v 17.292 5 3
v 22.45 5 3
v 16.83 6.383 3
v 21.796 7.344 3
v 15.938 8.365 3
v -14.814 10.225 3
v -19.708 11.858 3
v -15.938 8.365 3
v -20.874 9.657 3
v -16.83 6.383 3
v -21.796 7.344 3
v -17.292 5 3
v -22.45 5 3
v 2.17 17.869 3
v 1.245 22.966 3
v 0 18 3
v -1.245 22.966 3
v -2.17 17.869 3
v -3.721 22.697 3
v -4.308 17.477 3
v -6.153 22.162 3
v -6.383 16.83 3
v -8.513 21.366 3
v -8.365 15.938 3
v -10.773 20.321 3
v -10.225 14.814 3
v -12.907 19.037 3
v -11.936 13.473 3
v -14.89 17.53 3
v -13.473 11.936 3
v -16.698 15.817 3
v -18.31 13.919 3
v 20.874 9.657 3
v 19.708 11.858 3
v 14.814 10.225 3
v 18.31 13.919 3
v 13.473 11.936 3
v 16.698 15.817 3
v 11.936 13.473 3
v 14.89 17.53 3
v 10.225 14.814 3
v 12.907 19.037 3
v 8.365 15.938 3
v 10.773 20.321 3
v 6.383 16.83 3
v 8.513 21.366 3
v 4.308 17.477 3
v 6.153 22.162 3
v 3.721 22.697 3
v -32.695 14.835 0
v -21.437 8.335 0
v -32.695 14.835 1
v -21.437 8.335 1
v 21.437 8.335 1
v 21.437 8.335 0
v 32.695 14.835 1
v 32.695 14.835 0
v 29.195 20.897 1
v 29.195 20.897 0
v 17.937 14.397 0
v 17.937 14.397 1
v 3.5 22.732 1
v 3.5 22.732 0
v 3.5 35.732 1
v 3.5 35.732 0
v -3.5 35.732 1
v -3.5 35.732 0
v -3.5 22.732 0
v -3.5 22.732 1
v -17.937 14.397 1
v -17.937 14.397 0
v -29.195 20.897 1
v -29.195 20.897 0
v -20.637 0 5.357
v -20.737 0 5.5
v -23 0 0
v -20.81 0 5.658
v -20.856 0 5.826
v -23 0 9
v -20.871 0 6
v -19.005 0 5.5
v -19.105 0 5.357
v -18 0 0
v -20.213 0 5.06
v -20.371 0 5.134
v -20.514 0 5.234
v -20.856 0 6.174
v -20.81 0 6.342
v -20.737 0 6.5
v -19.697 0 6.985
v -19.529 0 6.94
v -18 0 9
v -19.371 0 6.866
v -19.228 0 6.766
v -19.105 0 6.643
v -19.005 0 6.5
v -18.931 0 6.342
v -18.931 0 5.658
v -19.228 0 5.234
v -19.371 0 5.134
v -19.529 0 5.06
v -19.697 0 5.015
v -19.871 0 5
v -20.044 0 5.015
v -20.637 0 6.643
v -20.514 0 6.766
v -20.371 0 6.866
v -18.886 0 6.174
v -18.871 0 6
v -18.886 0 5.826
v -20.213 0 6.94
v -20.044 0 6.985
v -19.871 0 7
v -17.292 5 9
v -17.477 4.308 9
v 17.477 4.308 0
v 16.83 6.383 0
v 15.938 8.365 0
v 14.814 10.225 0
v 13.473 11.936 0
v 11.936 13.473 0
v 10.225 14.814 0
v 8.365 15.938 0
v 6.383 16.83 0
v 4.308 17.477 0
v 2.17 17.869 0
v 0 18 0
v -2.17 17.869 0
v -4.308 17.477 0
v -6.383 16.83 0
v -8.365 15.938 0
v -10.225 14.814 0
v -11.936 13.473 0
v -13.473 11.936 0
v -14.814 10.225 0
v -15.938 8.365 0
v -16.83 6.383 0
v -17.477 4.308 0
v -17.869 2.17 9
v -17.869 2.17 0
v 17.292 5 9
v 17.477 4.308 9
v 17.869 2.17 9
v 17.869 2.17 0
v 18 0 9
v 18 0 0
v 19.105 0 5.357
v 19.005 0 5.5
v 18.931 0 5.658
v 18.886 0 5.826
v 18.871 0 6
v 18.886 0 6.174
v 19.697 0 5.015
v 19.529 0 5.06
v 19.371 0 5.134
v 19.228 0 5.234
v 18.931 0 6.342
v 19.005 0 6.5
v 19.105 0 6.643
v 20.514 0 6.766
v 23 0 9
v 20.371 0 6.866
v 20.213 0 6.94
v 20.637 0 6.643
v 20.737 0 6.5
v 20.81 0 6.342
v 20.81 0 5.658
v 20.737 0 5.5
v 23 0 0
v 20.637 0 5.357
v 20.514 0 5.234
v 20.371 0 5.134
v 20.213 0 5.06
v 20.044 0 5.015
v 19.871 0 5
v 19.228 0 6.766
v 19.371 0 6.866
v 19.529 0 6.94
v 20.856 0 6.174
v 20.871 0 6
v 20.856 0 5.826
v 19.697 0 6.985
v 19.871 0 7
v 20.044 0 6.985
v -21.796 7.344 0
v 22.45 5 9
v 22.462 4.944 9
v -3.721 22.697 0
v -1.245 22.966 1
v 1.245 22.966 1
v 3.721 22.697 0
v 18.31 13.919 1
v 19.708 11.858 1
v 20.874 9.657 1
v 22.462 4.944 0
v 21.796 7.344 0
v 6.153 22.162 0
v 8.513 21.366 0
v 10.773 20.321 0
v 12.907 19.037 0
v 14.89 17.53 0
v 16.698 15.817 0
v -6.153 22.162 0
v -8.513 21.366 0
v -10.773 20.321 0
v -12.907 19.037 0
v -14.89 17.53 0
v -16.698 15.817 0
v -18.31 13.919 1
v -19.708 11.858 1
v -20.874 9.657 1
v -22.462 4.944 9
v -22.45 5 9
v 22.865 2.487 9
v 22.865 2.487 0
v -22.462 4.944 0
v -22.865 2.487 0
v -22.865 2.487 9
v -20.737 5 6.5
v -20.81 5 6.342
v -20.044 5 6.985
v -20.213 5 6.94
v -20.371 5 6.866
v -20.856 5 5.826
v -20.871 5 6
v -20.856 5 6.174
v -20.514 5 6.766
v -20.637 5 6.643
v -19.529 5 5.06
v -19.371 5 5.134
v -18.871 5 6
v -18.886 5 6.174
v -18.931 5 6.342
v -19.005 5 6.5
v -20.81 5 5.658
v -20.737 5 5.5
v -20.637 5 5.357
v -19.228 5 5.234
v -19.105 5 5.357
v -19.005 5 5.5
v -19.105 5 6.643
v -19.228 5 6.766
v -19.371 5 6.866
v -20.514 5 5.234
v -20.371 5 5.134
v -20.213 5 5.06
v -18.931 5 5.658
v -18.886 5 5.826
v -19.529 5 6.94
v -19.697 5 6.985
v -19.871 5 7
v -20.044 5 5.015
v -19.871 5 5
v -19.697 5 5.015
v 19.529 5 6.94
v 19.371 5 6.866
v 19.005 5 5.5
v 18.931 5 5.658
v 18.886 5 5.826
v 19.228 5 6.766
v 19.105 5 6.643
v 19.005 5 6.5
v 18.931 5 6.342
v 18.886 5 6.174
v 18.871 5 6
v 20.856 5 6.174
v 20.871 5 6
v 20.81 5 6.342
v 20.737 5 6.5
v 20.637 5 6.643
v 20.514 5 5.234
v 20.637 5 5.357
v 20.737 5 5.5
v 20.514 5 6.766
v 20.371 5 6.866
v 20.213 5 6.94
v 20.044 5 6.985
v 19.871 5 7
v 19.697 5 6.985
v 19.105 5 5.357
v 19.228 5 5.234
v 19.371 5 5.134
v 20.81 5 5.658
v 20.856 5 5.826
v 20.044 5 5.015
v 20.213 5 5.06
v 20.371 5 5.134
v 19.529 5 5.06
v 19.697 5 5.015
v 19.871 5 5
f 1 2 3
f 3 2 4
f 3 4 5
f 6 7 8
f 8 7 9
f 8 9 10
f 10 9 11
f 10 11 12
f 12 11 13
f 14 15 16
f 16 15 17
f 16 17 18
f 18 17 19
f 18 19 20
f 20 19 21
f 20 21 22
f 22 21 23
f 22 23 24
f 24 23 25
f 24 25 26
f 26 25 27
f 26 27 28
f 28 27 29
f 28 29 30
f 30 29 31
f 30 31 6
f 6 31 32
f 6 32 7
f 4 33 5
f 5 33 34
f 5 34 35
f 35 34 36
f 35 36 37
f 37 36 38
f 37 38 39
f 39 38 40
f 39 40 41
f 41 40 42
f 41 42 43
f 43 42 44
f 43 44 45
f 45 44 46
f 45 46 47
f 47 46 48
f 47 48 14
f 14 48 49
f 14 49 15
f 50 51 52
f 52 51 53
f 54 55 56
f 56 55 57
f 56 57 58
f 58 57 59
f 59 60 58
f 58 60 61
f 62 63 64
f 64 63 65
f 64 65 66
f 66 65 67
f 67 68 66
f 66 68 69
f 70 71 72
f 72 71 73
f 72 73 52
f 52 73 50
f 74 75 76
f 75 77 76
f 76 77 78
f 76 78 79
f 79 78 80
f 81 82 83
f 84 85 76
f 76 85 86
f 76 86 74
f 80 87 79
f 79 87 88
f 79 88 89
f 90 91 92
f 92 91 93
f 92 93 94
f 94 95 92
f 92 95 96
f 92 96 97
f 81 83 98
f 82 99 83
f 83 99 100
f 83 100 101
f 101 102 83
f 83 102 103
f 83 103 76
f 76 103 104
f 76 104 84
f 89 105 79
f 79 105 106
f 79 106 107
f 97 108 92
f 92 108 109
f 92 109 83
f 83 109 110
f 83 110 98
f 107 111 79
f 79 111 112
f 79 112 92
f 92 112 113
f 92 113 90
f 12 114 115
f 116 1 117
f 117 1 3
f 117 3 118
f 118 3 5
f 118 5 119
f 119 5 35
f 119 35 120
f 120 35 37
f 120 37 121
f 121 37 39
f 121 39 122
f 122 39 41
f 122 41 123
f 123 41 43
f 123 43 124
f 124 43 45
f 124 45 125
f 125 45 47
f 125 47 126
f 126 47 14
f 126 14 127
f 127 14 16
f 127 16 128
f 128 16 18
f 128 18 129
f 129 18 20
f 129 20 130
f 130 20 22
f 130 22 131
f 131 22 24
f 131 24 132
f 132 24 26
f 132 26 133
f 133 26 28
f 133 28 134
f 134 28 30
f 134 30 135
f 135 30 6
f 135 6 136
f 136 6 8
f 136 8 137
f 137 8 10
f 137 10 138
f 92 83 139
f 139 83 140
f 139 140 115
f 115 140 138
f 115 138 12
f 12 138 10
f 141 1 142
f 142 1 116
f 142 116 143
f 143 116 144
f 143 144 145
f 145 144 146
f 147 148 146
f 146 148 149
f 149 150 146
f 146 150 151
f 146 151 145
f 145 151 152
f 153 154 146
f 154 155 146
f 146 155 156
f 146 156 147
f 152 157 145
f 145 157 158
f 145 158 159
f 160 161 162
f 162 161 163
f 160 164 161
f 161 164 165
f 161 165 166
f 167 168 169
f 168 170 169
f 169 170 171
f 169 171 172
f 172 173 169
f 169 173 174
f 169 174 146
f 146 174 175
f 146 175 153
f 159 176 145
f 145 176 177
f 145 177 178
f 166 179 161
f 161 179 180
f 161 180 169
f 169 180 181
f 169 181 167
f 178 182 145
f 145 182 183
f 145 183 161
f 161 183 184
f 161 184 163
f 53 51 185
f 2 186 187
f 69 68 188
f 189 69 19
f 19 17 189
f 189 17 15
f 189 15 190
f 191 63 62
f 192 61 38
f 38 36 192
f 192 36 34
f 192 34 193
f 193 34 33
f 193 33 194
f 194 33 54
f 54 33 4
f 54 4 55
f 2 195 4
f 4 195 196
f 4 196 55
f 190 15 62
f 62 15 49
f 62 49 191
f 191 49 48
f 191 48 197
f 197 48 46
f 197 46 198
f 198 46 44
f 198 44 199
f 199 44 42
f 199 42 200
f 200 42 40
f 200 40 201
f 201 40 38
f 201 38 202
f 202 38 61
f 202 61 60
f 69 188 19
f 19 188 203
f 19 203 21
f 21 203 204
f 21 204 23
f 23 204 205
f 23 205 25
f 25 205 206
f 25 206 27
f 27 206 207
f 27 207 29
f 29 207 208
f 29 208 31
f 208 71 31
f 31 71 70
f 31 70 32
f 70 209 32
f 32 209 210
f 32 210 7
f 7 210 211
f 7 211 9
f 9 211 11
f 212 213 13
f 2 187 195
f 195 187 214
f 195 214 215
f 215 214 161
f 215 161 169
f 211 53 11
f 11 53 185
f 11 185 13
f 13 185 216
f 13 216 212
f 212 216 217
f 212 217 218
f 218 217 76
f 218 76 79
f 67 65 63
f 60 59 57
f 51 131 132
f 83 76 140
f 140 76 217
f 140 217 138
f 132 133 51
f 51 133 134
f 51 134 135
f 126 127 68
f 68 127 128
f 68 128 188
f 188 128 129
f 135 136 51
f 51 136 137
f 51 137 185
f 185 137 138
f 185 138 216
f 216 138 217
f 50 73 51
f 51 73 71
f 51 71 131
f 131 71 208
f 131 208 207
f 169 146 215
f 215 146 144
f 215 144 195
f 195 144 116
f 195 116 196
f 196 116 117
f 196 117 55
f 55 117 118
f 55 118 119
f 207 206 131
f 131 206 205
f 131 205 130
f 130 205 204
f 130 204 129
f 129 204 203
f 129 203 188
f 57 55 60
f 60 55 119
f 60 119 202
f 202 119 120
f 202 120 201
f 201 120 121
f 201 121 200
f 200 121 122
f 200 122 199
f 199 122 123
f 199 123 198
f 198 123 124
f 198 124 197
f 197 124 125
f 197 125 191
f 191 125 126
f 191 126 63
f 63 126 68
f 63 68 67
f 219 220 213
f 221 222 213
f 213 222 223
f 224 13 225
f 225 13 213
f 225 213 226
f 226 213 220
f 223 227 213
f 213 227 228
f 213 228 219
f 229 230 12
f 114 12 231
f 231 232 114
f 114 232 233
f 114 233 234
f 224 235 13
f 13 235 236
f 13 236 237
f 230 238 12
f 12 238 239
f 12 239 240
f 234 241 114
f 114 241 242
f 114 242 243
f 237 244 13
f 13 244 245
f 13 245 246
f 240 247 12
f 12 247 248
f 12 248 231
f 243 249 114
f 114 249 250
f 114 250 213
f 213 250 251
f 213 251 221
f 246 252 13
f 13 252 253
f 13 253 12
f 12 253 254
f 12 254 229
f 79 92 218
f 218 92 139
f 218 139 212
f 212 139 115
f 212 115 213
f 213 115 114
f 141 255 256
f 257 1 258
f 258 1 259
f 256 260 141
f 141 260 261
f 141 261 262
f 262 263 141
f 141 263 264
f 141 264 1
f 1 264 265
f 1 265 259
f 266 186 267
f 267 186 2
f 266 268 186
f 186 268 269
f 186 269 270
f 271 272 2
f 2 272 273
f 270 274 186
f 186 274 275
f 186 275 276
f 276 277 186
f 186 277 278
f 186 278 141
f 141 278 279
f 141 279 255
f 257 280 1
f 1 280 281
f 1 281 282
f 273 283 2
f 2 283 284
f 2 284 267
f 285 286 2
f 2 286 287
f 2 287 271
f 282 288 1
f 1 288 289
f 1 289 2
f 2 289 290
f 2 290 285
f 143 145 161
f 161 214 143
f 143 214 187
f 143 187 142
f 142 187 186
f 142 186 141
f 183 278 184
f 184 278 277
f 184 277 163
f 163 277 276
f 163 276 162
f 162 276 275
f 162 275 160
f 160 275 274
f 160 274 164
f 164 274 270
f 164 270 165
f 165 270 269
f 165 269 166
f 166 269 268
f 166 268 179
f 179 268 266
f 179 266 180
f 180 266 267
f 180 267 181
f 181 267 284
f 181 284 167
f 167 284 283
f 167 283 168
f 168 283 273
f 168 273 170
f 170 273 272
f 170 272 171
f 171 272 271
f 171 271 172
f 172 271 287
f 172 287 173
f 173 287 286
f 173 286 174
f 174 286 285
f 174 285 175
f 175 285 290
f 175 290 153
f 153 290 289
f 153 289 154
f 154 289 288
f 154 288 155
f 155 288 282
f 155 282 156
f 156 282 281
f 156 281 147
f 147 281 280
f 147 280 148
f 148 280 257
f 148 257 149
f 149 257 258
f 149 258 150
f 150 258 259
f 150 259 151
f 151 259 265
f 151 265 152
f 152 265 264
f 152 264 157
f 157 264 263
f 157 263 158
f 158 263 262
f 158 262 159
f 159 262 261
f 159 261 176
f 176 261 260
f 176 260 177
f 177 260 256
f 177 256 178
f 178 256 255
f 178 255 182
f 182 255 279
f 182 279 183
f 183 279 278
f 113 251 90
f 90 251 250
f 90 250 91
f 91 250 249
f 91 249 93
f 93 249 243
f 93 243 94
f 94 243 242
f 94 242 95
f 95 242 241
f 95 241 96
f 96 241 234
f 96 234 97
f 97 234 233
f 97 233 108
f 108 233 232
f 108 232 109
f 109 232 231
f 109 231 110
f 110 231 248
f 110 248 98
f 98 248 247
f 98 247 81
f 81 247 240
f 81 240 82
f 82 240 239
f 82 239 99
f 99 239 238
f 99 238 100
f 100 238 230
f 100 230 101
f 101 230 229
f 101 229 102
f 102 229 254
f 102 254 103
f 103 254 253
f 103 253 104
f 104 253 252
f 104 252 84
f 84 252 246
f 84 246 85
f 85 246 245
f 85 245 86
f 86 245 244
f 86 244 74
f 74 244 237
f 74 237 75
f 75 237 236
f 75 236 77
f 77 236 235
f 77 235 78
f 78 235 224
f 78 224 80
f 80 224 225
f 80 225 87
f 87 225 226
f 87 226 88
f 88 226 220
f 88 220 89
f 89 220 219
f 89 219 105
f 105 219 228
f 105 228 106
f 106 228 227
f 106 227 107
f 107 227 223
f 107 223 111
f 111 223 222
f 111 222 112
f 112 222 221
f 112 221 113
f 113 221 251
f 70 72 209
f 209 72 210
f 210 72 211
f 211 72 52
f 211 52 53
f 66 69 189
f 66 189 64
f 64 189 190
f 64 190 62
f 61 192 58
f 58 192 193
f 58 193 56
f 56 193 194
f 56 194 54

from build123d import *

# Parameters (mm, degrees)
BOSS_EXTRUDE1_DEPTH = 3
BOSS_EXTRUDE2_DEPTH = 6
SKETCH4_R           = 1
CUT_EXTRUDE1_DEPTH  = 5
CUT_EXTRUDE2_DEPTH  = 2


with BuildPart() as part:
    # Sketch1 → Boss-Extrude1 (new body)
    with BuildSketch(Plane.XY):
        with BuildLine():
            Line((32.694937372, 14.834979008), (29.194937372, 20.897156835))
            Line((29.194937372, 20.897156835), (17.936607123, 14.397156835))
            ThreePointArc((17.936607123, 14.397156835), (11.5, 19.918584287), (3.5, 22.732135843))
            Line((3.5, 22.732135843), (3.5, 35.732135843))
            Line((3.5, 35.732135843), (-3.5, 35.732135843))
            Line((-3.5, 35.732135843), (-3.5, 22.732135843))
            ThreePointArc((-3.5, 22.732135843), (-11.5, 19.918584287), (-17.936607123, 14.397156835))
            Line((-17.936607123, 14.397156835), (-29.194937372, 20.897156835))
            Line((-29.194937372, 20.897156835), (-32.694937372, 14.834979008))
            Line((-32.694937372, 14.834979008), (-21.436607123, 8.334979008))
            ThreePointArc((-21.436607123, 8.334979008), (-22.605773199, 4.240167224), (-23, 0))
            Line((-23, 0), (-18, 0))
            ThreePointArc((-18, 0), (0, 18), (18, 0))
            Line((18, 0), (23, 0))
            ThreePointArc((23, 0), (22.605773199, 4.240167224), (21.436607123, 8.334979008))
            Line((21.436607123, 8.334979008), (32.694937372, 14.834979008))
        make_face()
    extrude(amount=BOSS_EXTRUDE1_DEPTH)

    # Sketch2 → Boss-Extrude2 (add)
    with BuildSketch(Plane.XY.offset(3)):
        with BuildLine():
            Line((-17.291616466, 5), (-22.449944321, 5))
            ThreePointArc((-22.449944321, 5), (-22.862072515, 2.515082566), (-23, 0))
            Line((-23, 0), (-18, 0))
            ThreePointArc((-18, 0), (-17.822024245, 2.524965704), (-17.291616466, 5))
        make_face()
        with BuildLine():
            Line((22.449944321, 5), (17.291616466, 5))
            ThreePointArc((17.291616466, 5), (17.822024245, 2.524965704), (18, 0))
            Line((18, 0), (23, 0))
            ThreePointArc((23, 0), (22.862072515, 2.515082566), (22.449944321, 5))
        make_face()
    extrude(amount=BOSS_EXTRUDE2_DEPTH)

    # Sketch4 → Cut-Extrude1 (cut)
    with BuildSketch(Plane(origin=(0, 5, 0), x_dir=(1, 0, 0), z_dir=(0, 1, 0))):
        with Locations((-19.870780393, -6)):
            Circle(SKETCH4_R)
        with Locations((19.870780393, -6)):
            Circle(SKETCH4_R)
    extrude(amount=-CUT_EXTRUDE1_DEPTH, mode=Mode.SUBTRACT)

    # Sketch5 → Cut-Extrude2 (cut)
    with BuildSketch(Plane.XY.offset(3)):
        with BuildLine():
            Line((-32.694937372, 14.834979008), (-21.436607123, 8.334979008))
            ThreePointArc((-21.436607123, 8.334979008), (-19.918584287, 11.5), (-17.936607123, 14.397156835))
            Line((-17.936607123, 14.397156835), (-29.194937372, 20.897156835))
            Line((-29.194937372, 20.897156835), (-32.694937372, 14.834979008))
        make_face()
        with BuildLine():
            ThreePointArc((-3.5, 22.732135843), (0, 23), (3.5, 22.732135843))
            Line((3.5, 22.732135843), (3.5, 35.732135843))
            Line((3.5, 35.732135843), (-3.5, 35.732135843))
            Line((-3.5, 35.732135843), (-3.5, 22.732135843))
        make_face()
        with BuildLine():
            ThreePointArc((17.936607123, 14.397156835), (19.918584287, 11.5), (21.436607123, 8.334979008))
            Line((21.436607123, 8.334979008), (32.694937372, 14.834979008))
            Line((32.694937372, 14.834979008), (29.194937372, 20.897156835))
            Line((29.194937372, 20.897156835), (17.936607123, 14.397156835))
        make_face()
    extrude(amount=-CUT_EXTRUDE2_DEPTH, mode=Mode.SUBTRACT)


solid = part.part
